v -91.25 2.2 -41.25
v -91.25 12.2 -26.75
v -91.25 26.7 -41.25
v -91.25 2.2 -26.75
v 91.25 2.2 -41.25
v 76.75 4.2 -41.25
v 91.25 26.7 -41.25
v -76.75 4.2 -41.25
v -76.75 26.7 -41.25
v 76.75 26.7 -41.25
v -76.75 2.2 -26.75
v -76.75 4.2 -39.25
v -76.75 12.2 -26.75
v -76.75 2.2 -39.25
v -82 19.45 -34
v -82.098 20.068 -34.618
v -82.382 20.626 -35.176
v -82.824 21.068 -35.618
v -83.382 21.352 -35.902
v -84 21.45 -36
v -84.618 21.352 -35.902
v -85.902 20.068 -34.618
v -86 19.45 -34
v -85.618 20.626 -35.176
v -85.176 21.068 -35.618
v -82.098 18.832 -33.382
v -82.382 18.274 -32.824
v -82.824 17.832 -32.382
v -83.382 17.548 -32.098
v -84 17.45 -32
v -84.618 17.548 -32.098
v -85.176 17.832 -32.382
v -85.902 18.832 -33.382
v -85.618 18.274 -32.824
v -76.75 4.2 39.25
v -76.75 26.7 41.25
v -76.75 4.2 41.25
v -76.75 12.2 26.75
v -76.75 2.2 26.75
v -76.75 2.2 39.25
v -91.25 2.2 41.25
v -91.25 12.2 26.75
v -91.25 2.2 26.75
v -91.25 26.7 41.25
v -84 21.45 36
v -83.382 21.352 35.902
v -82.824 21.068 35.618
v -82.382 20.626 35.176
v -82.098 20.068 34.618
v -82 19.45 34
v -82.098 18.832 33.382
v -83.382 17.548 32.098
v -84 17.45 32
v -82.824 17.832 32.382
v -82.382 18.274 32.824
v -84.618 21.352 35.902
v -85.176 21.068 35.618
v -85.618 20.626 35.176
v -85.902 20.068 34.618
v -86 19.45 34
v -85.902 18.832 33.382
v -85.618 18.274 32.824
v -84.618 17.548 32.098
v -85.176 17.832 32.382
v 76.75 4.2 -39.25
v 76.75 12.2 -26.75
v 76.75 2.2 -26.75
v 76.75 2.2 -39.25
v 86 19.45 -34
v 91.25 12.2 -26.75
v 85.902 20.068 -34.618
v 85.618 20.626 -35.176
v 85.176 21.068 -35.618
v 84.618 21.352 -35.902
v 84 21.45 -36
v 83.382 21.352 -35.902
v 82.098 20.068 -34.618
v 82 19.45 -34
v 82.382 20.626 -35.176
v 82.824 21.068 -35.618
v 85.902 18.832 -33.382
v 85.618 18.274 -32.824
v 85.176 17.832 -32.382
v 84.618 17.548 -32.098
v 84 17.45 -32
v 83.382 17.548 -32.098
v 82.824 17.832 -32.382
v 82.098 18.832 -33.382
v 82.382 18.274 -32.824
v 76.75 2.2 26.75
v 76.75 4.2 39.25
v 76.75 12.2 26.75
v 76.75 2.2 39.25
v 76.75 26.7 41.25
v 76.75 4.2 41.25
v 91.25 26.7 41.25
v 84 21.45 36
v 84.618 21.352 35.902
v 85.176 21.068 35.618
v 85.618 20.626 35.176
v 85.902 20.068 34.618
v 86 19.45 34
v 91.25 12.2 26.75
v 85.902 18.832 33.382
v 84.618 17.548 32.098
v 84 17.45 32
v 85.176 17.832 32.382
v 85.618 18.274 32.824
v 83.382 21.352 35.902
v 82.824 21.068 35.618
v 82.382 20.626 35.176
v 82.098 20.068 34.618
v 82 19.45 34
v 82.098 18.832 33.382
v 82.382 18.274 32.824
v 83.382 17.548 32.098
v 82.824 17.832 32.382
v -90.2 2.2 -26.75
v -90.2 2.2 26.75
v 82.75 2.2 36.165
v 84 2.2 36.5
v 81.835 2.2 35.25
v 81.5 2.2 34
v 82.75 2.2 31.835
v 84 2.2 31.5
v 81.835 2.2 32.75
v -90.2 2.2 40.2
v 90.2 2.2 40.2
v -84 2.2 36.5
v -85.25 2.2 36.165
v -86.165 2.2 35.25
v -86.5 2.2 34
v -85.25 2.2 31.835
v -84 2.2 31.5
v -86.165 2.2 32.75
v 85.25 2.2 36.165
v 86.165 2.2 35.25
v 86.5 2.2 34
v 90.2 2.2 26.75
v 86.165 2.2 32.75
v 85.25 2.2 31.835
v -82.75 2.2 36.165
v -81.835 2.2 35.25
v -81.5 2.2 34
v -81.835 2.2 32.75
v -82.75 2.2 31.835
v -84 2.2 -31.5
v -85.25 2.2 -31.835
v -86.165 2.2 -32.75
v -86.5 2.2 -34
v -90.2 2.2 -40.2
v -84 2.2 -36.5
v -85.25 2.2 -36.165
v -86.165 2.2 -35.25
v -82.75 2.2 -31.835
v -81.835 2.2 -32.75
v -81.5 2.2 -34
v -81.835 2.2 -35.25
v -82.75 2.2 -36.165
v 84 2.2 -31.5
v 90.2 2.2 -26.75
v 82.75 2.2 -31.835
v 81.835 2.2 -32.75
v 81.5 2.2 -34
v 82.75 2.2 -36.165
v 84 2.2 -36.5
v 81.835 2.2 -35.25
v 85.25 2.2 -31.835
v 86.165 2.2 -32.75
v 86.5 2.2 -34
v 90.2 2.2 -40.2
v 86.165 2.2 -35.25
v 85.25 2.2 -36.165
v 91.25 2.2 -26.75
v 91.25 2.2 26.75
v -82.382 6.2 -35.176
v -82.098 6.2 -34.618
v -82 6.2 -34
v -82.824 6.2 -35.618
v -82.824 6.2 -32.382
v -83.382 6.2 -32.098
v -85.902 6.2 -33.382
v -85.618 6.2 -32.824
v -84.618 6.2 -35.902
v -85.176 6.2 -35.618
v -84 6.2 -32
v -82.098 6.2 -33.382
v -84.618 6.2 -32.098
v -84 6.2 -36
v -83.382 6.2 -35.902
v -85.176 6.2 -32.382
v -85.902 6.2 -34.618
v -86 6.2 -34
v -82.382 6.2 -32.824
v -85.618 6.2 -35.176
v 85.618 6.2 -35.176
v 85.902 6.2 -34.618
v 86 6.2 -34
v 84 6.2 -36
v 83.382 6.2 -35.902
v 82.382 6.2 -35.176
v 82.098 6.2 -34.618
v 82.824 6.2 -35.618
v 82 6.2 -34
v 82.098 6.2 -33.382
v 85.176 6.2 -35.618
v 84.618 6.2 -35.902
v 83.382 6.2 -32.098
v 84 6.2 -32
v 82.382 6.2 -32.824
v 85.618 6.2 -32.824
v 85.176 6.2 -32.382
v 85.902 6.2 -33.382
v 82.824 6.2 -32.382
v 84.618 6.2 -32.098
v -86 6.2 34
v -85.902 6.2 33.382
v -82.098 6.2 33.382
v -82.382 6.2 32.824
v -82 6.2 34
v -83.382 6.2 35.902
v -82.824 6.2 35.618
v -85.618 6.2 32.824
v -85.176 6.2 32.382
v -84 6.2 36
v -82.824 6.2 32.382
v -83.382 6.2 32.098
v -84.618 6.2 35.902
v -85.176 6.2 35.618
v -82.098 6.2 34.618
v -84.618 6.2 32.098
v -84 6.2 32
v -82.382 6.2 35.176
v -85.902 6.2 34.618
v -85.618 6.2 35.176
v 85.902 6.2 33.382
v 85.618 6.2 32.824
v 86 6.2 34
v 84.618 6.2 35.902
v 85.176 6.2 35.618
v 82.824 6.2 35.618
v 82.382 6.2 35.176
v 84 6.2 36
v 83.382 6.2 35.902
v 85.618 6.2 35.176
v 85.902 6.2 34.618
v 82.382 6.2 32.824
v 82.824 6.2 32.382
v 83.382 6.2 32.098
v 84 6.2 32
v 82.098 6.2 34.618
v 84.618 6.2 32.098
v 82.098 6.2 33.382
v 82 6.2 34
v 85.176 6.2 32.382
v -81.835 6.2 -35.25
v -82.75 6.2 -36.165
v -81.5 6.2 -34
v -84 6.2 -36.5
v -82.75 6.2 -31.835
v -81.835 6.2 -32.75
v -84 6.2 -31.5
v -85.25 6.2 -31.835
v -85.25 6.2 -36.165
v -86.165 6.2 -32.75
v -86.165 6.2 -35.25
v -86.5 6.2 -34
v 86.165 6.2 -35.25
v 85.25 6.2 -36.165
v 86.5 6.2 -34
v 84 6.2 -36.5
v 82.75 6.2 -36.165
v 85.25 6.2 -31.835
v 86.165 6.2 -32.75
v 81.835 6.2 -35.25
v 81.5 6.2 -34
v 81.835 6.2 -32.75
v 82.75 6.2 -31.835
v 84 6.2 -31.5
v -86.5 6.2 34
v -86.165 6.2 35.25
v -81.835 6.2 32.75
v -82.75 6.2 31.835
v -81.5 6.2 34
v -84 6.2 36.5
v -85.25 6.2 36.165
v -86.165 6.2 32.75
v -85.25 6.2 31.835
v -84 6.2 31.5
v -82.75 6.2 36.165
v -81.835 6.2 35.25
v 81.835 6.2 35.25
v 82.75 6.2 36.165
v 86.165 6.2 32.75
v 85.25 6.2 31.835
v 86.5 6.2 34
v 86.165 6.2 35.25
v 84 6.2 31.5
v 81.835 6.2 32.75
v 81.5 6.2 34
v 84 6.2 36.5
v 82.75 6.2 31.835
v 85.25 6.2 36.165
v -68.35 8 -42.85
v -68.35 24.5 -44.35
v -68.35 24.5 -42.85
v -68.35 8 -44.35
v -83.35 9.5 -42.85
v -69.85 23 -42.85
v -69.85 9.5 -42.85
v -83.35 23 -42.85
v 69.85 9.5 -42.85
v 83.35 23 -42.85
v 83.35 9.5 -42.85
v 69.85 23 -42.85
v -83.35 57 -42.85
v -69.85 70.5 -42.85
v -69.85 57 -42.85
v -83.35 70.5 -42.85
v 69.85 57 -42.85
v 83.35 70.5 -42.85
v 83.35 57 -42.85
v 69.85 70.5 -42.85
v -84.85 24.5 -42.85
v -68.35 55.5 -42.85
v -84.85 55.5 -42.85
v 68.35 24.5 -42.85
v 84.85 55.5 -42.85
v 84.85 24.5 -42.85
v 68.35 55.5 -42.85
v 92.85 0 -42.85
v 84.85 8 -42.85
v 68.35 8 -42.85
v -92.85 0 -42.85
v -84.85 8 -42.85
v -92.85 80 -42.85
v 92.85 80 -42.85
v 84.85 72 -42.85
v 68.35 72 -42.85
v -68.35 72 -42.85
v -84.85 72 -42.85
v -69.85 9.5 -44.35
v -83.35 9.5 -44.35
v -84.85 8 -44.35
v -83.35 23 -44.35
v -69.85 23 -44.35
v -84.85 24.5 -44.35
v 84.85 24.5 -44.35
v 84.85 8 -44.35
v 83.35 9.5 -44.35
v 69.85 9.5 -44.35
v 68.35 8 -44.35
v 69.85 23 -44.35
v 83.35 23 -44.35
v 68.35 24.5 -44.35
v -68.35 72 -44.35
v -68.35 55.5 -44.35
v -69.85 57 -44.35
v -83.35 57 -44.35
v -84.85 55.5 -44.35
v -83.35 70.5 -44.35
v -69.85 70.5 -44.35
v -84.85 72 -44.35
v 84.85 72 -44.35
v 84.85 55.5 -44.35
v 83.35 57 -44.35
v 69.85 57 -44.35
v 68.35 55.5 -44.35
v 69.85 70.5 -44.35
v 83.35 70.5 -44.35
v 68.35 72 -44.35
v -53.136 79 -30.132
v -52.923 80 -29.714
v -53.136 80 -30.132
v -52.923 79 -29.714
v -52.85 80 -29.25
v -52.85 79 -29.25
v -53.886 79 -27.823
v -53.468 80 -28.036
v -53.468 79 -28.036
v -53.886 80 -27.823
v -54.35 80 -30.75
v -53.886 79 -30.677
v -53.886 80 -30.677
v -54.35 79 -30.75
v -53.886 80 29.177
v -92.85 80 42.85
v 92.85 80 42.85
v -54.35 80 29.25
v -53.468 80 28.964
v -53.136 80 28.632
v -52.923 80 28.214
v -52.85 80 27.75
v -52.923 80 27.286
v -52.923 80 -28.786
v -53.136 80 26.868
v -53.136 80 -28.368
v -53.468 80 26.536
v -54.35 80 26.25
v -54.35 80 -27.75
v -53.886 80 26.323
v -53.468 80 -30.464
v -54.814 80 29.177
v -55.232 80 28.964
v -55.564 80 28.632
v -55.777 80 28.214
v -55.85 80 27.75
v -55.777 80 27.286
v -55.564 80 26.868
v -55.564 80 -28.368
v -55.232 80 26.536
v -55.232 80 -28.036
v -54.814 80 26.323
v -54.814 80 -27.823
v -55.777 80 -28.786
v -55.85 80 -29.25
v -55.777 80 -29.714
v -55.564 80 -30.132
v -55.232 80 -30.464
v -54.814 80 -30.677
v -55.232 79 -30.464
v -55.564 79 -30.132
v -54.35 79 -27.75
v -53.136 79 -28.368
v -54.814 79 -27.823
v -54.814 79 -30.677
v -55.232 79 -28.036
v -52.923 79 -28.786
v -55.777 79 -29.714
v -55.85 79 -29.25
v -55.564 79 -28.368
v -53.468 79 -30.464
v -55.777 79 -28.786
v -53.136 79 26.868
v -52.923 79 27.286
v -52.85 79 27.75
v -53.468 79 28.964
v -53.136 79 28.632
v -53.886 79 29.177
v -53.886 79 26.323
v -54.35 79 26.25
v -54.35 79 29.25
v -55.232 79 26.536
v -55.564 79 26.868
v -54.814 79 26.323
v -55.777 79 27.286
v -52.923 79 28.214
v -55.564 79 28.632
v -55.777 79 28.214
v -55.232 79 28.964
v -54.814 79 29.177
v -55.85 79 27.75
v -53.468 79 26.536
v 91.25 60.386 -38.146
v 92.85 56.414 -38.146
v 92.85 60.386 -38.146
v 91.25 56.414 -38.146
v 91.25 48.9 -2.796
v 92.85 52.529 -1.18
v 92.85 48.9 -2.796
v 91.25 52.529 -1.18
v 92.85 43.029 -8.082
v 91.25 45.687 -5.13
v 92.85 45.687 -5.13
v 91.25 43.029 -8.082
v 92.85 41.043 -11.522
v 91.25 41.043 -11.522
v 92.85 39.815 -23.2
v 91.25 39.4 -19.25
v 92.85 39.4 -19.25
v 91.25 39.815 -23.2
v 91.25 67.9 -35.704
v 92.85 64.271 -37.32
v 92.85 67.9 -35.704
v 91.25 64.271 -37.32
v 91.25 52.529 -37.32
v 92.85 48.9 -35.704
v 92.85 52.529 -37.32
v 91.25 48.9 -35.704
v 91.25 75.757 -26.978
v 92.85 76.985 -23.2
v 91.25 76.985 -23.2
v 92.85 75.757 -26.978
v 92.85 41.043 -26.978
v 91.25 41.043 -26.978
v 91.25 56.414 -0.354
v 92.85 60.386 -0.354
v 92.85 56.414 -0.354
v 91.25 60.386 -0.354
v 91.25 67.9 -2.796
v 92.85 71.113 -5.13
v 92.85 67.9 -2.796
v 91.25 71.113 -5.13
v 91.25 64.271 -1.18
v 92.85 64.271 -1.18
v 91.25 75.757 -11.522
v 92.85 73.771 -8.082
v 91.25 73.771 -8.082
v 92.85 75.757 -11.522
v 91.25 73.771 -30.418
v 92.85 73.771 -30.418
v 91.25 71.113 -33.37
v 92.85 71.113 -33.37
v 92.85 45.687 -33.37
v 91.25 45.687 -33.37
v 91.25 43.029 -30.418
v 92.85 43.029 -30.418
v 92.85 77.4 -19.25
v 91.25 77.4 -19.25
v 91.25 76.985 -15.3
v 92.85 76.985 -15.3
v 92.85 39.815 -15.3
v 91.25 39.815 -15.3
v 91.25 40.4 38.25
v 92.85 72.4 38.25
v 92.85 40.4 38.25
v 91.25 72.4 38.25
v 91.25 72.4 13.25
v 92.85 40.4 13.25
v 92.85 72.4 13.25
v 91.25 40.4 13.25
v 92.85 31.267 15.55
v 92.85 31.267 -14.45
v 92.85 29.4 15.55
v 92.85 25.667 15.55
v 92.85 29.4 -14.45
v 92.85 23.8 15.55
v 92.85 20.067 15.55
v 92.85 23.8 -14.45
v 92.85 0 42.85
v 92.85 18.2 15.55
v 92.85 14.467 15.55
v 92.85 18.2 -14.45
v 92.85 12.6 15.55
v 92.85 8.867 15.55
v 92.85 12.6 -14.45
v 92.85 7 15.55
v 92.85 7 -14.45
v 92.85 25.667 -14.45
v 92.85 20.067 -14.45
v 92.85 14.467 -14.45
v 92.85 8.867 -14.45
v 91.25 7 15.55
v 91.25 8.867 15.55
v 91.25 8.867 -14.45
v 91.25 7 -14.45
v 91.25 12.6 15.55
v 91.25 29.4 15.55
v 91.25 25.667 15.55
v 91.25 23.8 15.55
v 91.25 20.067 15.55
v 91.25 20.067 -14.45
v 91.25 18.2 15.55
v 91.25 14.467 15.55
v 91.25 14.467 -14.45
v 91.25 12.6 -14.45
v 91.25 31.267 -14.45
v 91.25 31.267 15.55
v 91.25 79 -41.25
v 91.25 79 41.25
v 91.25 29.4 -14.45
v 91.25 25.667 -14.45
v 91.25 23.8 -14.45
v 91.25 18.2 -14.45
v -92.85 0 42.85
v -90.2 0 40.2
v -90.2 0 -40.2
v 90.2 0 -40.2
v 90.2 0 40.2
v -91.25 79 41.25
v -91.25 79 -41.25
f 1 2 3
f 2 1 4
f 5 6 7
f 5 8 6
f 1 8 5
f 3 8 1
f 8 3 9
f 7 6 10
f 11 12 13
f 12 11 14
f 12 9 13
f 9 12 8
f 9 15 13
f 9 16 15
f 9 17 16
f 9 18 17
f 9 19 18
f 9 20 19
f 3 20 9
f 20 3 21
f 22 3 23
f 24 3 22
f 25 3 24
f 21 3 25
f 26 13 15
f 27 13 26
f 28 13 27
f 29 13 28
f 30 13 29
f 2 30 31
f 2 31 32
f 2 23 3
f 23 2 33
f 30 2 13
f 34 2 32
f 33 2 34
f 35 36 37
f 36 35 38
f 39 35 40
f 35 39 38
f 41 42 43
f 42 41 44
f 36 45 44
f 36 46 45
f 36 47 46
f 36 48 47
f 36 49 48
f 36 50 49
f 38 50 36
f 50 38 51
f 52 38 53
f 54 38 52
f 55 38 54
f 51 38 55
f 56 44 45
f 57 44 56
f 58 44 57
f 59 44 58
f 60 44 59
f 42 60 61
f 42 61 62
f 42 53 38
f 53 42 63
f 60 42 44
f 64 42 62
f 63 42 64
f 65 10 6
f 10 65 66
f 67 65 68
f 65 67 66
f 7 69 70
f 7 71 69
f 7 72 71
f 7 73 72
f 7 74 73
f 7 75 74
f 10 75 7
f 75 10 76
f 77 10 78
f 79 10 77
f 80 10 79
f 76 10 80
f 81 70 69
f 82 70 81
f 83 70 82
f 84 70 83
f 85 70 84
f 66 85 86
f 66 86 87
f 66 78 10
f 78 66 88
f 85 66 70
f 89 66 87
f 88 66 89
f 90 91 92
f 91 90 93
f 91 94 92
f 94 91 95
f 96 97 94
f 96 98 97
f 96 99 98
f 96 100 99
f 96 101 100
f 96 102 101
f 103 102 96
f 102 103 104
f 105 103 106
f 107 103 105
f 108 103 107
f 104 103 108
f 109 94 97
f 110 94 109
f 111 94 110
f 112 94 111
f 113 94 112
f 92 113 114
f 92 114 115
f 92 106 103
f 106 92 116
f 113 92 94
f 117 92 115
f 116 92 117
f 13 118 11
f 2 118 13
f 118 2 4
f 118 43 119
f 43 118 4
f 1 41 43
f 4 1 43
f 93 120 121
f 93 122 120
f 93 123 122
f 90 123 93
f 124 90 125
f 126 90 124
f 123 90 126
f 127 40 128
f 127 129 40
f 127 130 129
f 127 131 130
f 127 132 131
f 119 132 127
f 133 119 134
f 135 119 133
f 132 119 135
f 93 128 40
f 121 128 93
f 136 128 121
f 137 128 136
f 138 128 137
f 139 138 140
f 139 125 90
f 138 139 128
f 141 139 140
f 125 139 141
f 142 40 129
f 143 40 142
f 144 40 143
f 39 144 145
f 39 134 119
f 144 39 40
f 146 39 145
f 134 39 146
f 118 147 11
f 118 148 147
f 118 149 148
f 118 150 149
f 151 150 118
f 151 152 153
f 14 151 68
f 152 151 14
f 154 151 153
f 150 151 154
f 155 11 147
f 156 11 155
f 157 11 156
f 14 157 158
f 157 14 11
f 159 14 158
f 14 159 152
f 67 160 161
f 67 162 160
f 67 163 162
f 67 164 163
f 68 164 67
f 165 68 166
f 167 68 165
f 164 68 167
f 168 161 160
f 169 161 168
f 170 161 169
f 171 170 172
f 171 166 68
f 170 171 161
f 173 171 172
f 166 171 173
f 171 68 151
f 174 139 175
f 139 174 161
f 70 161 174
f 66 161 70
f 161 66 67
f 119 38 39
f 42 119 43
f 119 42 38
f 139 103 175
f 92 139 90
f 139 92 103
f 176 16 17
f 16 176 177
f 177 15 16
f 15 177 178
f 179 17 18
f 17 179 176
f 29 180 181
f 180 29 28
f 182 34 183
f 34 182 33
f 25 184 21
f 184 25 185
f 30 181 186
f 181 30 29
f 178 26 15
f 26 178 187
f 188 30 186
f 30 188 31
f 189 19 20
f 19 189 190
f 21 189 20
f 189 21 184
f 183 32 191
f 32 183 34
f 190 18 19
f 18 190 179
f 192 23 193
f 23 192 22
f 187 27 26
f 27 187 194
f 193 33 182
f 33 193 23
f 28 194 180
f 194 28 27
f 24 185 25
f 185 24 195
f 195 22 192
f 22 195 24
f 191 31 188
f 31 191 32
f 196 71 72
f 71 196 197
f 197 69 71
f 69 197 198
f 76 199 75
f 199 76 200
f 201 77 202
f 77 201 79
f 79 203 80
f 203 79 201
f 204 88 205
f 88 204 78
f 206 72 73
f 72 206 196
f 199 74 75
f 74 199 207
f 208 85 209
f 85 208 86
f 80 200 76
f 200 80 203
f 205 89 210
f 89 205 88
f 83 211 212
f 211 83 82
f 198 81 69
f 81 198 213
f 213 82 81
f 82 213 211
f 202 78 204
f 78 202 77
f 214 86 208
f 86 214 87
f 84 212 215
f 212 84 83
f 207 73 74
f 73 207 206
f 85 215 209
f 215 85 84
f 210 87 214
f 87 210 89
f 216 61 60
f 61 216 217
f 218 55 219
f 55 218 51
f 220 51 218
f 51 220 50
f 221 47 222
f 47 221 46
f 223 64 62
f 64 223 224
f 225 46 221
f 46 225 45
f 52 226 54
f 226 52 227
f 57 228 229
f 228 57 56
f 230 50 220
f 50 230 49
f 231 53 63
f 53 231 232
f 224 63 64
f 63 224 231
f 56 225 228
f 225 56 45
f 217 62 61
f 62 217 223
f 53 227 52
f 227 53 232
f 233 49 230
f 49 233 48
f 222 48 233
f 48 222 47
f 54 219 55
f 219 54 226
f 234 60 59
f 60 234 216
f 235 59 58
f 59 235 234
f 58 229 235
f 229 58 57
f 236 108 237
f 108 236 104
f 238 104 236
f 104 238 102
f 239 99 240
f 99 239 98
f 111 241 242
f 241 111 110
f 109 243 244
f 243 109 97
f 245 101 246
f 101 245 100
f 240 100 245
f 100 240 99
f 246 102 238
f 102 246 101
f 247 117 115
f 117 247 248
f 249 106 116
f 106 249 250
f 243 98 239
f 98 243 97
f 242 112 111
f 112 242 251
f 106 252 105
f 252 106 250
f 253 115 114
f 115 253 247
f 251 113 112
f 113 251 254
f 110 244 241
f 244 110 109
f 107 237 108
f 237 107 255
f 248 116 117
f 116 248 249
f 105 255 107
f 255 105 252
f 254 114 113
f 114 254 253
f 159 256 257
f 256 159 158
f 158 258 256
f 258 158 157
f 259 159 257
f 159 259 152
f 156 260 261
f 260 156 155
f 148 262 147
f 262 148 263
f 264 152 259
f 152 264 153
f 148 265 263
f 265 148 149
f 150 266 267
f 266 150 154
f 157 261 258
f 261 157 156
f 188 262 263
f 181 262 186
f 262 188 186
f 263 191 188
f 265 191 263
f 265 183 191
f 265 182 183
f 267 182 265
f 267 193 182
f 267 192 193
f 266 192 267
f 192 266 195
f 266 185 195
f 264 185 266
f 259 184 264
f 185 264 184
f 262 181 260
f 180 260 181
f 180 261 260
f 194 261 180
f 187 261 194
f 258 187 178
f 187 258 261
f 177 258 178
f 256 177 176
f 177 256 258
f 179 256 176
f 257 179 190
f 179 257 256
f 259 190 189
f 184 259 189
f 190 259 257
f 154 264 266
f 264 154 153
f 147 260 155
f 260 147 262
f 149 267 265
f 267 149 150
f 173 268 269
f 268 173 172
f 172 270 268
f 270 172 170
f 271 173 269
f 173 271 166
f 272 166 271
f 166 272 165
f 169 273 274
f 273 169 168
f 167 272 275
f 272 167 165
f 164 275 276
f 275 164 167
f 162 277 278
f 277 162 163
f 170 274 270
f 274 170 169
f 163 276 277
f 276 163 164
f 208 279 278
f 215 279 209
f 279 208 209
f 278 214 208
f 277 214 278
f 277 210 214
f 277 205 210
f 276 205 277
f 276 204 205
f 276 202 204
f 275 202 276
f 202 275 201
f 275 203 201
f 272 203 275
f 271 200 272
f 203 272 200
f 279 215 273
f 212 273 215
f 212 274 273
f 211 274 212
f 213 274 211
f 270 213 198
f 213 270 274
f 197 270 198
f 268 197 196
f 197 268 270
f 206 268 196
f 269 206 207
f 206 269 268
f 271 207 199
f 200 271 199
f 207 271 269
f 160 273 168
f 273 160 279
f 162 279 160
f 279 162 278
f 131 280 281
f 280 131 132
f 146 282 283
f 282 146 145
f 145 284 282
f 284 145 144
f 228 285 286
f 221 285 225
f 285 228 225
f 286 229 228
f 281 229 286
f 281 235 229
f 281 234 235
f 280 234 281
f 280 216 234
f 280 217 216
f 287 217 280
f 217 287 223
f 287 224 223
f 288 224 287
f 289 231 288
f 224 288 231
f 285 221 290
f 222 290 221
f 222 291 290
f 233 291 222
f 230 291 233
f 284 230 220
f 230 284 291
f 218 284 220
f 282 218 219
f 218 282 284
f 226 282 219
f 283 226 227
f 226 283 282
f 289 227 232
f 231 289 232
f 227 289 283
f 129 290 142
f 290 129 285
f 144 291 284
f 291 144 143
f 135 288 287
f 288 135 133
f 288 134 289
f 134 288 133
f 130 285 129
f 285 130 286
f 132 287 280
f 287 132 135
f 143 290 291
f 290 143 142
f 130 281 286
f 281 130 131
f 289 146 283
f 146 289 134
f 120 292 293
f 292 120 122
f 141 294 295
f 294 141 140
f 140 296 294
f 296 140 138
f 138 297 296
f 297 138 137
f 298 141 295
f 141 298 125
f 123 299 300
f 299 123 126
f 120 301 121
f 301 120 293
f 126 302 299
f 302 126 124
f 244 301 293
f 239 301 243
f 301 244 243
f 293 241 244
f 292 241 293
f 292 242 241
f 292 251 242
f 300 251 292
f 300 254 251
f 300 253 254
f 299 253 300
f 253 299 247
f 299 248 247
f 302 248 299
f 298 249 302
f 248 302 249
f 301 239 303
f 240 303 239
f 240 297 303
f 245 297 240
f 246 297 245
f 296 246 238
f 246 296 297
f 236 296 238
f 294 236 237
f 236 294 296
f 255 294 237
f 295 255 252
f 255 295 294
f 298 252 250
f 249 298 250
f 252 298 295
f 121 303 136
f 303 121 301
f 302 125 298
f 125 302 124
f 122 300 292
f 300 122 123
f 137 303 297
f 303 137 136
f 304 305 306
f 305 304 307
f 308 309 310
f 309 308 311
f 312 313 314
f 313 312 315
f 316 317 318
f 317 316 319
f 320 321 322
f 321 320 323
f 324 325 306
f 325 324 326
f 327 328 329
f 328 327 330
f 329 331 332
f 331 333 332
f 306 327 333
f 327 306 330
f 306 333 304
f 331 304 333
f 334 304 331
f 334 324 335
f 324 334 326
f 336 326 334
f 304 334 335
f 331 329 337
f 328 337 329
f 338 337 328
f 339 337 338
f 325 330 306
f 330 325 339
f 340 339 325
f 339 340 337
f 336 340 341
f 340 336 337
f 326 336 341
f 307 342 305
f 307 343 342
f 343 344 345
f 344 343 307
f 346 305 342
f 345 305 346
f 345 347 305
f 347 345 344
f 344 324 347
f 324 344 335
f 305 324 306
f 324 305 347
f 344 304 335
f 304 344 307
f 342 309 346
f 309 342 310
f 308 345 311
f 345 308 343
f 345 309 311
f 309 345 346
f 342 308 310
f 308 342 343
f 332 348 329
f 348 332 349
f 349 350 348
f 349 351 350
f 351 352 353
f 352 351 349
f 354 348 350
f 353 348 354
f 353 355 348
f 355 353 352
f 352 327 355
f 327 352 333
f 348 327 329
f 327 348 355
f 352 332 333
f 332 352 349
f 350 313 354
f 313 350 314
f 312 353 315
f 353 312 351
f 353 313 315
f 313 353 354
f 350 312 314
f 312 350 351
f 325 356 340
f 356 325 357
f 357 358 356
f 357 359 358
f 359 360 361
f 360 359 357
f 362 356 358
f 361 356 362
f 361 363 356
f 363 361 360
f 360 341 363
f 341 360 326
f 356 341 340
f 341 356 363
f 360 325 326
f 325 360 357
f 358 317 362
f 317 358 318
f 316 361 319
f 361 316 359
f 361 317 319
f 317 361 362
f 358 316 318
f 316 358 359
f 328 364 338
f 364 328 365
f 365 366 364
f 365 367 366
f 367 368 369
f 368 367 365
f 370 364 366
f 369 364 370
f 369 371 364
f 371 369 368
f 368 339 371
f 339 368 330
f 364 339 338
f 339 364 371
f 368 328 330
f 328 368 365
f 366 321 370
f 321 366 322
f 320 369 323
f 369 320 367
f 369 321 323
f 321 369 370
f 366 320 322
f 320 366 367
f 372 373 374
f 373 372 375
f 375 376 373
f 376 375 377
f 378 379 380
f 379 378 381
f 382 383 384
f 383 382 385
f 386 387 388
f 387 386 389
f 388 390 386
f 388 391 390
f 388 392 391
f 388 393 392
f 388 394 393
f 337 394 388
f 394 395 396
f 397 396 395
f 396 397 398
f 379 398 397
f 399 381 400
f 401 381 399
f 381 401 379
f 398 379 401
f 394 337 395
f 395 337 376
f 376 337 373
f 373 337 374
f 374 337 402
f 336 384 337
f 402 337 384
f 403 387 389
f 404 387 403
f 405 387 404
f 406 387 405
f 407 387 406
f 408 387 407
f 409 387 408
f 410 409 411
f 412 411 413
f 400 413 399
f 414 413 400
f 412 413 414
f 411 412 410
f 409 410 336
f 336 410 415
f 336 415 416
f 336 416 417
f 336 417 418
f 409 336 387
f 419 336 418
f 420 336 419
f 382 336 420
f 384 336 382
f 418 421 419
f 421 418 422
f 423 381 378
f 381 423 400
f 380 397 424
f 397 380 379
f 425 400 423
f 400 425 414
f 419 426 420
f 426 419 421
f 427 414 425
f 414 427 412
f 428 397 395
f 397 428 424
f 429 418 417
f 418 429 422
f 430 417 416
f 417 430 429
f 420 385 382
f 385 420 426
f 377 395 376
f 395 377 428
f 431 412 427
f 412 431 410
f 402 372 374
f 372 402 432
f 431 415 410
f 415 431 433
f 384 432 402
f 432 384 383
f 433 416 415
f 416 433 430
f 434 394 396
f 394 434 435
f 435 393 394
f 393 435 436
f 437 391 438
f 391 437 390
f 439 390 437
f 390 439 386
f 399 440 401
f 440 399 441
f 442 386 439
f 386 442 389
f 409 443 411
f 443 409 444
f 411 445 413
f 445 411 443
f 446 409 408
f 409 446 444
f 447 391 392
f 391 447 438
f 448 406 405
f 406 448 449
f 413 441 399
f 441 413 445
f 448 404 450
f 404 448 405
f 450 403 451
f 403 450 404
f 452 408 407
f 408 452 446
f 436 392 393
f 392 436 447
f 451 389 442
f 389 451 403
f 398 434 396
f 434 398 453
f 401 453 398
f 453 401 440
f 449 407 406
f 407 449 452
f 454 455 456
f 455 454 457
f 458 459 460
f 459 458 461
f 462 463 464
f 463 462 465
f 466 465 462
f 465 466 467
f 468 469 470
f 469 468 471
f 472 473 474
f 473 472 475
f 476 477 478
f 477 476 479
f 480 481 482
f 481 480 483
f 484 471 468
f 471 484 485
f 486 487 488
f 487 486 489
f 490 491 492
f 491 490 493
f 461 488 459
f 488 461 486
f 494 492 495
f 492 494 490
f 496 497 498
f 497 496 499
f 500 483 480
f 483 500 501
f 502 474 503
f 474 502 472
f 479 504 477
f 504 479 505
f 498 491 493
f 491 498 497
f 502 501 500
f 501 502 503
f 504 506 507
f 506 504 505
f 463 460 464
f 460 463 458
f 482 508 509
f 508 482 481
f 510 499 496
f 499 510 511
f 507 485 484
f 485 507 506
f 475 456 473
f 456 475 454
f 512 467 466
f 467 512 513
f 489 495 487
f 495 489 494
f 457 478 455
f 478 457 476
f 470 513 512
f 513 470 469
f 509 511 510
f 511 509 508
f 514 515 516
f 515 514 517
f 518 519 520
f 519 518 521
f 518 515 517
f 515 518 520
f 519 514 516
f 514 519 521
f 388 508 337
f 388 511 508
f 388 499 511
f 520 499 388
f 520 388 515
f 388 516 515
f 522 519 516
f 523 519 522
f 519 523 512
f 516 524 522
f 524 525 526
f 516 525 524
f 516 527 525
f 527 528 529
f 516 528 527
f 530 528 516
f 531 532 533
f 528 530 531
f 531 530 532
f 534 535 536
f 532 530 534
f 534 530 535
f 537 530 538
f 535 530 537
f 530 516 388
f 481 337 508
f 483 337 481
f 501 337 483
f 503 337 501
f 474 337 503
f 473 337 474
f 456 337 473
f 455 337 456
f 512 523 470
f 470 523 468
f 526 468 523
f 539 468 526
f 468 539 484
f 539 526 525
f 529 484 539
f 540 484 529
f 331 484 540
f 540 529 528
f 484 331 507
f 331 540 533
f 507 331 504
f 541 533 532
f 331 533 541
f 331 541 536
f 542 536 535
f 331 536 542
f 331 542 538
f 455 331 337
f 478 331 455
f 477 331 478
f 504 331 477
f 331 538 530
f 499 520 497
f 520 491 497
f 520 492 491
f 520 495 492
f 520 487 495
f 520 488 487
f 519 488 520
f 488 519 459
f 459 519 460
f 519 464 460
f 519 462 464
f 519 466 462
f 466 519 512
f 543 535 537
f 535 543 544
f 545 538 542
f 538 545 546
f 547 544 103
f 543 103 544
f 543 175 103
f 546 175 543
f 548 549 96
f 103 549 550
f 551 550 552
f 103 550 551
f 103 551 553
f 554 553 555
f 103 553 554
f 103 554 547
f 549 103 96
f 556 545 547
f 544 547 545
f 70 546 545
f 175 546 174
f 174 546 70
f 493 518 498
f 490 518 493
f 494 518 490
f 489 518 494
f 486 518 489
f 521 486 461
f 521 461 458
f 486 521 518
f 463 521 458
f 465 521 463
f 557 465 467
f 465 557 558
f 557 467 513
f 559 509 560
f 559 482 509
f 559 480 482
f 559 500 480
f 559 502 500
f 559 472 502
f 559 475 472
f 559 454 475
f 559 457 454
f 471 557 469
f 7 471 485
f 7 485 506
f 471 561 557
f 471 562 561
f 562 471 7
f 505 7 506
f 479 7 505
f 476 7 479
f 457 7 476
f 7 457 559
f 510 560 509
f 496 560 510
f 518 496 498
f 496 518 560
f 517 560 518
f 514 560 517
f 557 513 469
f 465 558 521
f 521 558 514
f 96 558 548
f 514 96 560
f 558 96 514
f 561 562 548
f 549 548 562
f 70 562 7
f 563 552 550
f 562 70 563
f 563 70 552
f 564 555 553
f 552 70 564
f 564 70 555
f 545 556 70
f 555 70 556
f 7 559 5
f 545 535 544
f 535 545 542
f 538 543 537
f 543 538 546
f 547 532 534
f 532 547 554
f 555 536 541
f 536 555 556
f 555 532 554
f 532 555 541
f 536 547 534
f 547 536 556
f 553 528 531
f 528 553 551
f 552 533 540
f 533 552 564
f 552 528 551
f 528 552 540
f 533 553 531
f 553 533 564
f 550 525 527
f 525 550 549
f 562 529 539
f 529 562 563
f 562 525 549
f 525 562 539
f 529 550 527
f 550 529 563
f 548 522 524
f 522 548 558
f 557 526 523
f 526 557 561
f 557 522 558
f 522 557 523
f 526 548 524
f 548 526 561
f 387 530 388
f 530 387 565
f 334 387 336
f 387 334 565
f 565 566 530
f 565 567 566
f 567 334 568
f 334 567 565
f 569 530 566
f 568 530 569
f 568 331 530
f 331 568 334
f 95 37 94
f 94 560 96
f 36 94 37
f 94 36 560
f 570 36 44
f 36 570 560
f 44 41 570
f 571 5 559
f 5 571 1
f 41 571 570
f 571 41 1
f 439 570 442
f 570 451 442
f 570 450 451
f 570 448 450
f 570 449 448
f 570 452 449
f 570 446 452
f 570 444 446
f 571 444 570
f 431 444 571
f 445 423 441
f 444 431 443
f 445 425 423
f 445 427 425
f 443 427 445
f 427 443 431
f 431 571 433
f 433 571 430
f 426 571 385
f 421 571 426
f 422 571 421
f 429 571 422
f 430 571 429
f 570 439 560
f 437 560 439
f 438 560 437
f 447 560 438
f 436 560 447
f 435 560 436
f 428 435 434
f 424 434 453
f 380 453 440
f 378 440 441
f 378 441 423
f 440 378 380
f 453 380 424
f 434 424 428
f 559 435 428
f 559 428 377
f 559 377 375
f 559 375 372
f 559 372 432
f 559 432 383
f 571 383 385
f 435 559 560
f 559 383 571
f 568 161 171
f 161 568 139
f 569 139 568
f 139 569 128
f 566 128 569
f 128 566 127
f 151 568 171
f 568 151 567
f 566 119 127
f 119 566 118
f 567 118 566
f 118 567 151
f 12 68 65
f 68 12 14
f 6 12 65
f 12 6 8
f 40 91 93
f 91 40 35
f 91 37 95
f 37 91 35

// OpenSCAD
thickness = 1.6;
pcb_thickness = 1.7;
front_pcb = [180, 80];
front_pcb_screw = [168, 68, 4, 8];	// x, z, diam, ecrou diam
pcb_margin = 2.5;

cubewidth = front_pcb[0] - front_pcb_screw[0] + pcb_margin;
cubedepth = 10;

power_screws_x = 145.6;
power_screws_zs = [12, 69];

feet_width = 13.5;
feet_thickness = 1.5;
feet_spacing = 8;

case = [
    front_pcb[0] + thickness * 2 + pcb_margin,
    80,
    front_pcb[1] + thickness * 2 + pcb_margin
];


module vents() {
	count = 5;
	ventx = thickness;
	ventz = 30;
	venty = 14;
	for (number = [0:(count-1)]){
        translate([$case[0] - thickness, -7 + venty + number * ((venty * 2)/count), ventz - thickness])
            cube([ventx, venty/count/1.5, ventz]);
    }
}

module power_holes() {
    power_vent_diam = 38;
    power_vent_diam_pos = [40];
    translate([case[0]/2 - thickness - 0.5, case[1] - thickness - power_vent_diam_pos[0]/2, -case[2]/2 + thickness + power_vent_diam_pos[0]/2 + 2])
    rotate([-90, 0, -90]) cylinder(h=thickness*2, d=power_vent_diam, $fn=30);

    power_plug = [32, 25];
    power_plug_pos = [38];
    translate([case[0]/2 - thickness - 0.5, case[1] - thickness - power_plug_pos[0], case[2]/2 - thickness - power_plug[1] - 3])
    cube([thickness*2, power_plug[0], power_plug[1]]);

    for (screw = [0:1]) {
        translate([
            case[0]/2 - thickness - power_screws_x,
            case[1] - thickness,
            -case[2]/2 + thickness + power_screws_zs[screw]])
        rotate([-90, 0, 0]) cylinder(h=thickness, d=3, $fn=20);
    }
}
//power_holes();

module feets() {
    feet_full_width = feet_width + feet_thickness * 2;
    translate([-case[0]/2+feet_spacing, feet_spacing, -case[2]/2 - feet_thickness])
    foot();
    translate([case[0]/2-feet_spacing-feet_full_width, feet_spacing, -case[2]/2 - feet_thickness])
    foot();
    translate([-case[0]/2+feet_spacing, case[1] - feet_full_width - feet_spacing, -case[2]/2 - feet_thickness])
    foot();
    translate([case[0]/2-feet_spacing-feet_full_width, case[1] - feet_full_width - feet_spacing, -case[2]/2 - feet_thickness])
    foot();
}
module foot() {
    difference() {
        cube([feet_width+feet_thickness*2, feet_width+feet_thickness*2, feet_thickness]);
        translate([feet_thickness, feet_thickness])
        cube([feet_width, feet_width, feet_thickness]);
    }
}

module case($case) {
    translate([-$case[0]/2, 0, -$case[2]/2])

    difference() {
        color("Grey")
            cube([$case[0], $case[1], $case[2]]);
        translate([thickness, pcb_thickness+0.5, thickness])
            cube([$case[0]-thickness*2, $case[1]-pcb_thickness-1.5, $case[2]-thickness*2]);
        translate([thickness+pcb_margin/2-0.2, 0, thickness+pcb_margin/2-0.2])
            cube([$case[0]-thickness*2-pcb_margin+0.4, pcb_thickness+0.5, $case[2]-thickness*2-pcb_margin+0.4]);

        // Thermal vents
        vents();
    }

    // horizontal supports
    translate([-case[0]/2 + thickness, pcb_thickness + 0.5, -case[2]/2 + thickness])
        cube([$case[0] - thickness * 2, 2, 2]);
    translate([-case[0]/2 + thickness, pcb_thickness + 0.5, case[2]/2 - thickness - 2])
        cube([$case[0] - thickness * 2, 2, 2]);

	// Front screws
    difference() {
        color("Blue") {
            translate([-case[0]/2 + thickness, cubedepth + pcb_thickness + 0.5, -case[2]/2 + thickness + cubewidth])
            rotate([0, 90])
                linear_extrude(cubewidth)
                    polygon(points=[[0,0], [cubewidth, 0], [cubewidth, cubewidth]], paths=[[0,1,2]]);

            translate([-case[0]/2 + thickness + cubewidth, cubedepth + pcb_thickness + 0.5, case[2]/2 - thickness - cubewidth])
            rotate([0, -90])
                linear_extrude(cubewidth)
                    polygon(points=[[0,0], [cubewidth, 0], [cubewidth, cubewidth]], paths=[[0,1,2]]);

            translate([case[0]/2 - thickness - cubewidth, cubedepth + pcb_thickness + 0.5, -case[2]/2 + thickness + cubewidth])
            rotate([0, 90])
                linear_extrude(cubewidth)
                    polygon(points=[[0,0], [cubewidth, 0], [cubewidth, cubewidth]], paths=[[0,1,2]]);

            translate([case[0]/2 - thickness, cubedepth + pcb_thickness + 0.5, case[2]/2 - thickness - cubewidth])
            rotate([0, -90])
                linear_extrude(cubewidth)
                    polygon(points=[[0,0], [cubewidth, 0], [cubewidth, cubewidth]], paths=[[0,1,2]]);



            translate([-case[0]/2 + thickness, pcb_thickness + 0.5, -case[2]/2 + thickness])
                cube([cubewidth, cubedepth, cubewidth]);
            translate([case[0]/2 - thickness - cubewidth, pcb_thickness + 0.5, -case[2]/2 + thickness])
                cube([cubewidth, cubedepth, cubewidth]);
            translate([-case[0]/2 + thickness, pcb_thickness + 0.5, case[2]/2 - thickness - cubewidth])
                cube([cubewidth, cubedepth, cubewidth]);
            translate([case[0]/2 - thickness - cubewidth, pcb_thickness + 0.5, case[2]/2 - thickness - cubewidth])
                cube([cubewidth, cubedepth, cubewidth]);
        }
        color("Red") {
            // PCB screw holes
            translate([-front_pcb_screw[0]/2, pcb_thickness, -front_pcb_screw[1]/2])
                rotate([-90]) cylinder(h=cubedepth+cubewidth+thickness, d=front_pcb_screw[2], $fn=20);
            translate([front_pcb_screw[0]/2, pcb_thickness, -front_pcb_screw[1]/2])
                rotate([-90]) cylinder(h=cubedepth+cubewidth+thickness, d=front_pcb_screw[2], $fn=20);
            translate([-front_pcb_screw[0]/2, pcb_thickness, front_pcb_screw[1]/2])
                rotate([-90]) cylinder(h=cubedepth+cubewidth+thickness, d=front_pcb_screw[2], $fn=20);
            translate([front_pcb_screw[0]/2, pcb_thickness, front_pcb_screw[1]/2])
                rotate([-90]) cylinder(h=cubedepth+cubewidth+thickness, d=front_pcb_screw[2], $fn=20);
        }
        color("Yellow") {
            // PCB screw holes
            translate([-front_pcb_screw[0]/2, pcb_thickness, -front_pcb_screw[1]/2])
                rotate([-90]) cylinder(h=4.5, d=5, $fn=12);
            translate([front_pcb_screw[0]/2, pcb_thickness, -front_pcb_screw[1]/2])
                rotate([-90]) cylinder(h=4.5, d=5, $fn=12);
            translate([-front_pcb_screw[0]/2, pcb_thickness, front_pcb_screw[1]/2])
                rotate([-90]) cylinder(h=4.5, d=5, $fn=12);
            translate([front_pcb_screw[0]/2, pcb_thickness, front_pcb_screw[1]/2])
                rotate([-90]) cylinder(h=4.5, d=5, $fn=12);
        }
    }
    
    feets();
}

difference() {
	case(case);
    power_holes();
}
